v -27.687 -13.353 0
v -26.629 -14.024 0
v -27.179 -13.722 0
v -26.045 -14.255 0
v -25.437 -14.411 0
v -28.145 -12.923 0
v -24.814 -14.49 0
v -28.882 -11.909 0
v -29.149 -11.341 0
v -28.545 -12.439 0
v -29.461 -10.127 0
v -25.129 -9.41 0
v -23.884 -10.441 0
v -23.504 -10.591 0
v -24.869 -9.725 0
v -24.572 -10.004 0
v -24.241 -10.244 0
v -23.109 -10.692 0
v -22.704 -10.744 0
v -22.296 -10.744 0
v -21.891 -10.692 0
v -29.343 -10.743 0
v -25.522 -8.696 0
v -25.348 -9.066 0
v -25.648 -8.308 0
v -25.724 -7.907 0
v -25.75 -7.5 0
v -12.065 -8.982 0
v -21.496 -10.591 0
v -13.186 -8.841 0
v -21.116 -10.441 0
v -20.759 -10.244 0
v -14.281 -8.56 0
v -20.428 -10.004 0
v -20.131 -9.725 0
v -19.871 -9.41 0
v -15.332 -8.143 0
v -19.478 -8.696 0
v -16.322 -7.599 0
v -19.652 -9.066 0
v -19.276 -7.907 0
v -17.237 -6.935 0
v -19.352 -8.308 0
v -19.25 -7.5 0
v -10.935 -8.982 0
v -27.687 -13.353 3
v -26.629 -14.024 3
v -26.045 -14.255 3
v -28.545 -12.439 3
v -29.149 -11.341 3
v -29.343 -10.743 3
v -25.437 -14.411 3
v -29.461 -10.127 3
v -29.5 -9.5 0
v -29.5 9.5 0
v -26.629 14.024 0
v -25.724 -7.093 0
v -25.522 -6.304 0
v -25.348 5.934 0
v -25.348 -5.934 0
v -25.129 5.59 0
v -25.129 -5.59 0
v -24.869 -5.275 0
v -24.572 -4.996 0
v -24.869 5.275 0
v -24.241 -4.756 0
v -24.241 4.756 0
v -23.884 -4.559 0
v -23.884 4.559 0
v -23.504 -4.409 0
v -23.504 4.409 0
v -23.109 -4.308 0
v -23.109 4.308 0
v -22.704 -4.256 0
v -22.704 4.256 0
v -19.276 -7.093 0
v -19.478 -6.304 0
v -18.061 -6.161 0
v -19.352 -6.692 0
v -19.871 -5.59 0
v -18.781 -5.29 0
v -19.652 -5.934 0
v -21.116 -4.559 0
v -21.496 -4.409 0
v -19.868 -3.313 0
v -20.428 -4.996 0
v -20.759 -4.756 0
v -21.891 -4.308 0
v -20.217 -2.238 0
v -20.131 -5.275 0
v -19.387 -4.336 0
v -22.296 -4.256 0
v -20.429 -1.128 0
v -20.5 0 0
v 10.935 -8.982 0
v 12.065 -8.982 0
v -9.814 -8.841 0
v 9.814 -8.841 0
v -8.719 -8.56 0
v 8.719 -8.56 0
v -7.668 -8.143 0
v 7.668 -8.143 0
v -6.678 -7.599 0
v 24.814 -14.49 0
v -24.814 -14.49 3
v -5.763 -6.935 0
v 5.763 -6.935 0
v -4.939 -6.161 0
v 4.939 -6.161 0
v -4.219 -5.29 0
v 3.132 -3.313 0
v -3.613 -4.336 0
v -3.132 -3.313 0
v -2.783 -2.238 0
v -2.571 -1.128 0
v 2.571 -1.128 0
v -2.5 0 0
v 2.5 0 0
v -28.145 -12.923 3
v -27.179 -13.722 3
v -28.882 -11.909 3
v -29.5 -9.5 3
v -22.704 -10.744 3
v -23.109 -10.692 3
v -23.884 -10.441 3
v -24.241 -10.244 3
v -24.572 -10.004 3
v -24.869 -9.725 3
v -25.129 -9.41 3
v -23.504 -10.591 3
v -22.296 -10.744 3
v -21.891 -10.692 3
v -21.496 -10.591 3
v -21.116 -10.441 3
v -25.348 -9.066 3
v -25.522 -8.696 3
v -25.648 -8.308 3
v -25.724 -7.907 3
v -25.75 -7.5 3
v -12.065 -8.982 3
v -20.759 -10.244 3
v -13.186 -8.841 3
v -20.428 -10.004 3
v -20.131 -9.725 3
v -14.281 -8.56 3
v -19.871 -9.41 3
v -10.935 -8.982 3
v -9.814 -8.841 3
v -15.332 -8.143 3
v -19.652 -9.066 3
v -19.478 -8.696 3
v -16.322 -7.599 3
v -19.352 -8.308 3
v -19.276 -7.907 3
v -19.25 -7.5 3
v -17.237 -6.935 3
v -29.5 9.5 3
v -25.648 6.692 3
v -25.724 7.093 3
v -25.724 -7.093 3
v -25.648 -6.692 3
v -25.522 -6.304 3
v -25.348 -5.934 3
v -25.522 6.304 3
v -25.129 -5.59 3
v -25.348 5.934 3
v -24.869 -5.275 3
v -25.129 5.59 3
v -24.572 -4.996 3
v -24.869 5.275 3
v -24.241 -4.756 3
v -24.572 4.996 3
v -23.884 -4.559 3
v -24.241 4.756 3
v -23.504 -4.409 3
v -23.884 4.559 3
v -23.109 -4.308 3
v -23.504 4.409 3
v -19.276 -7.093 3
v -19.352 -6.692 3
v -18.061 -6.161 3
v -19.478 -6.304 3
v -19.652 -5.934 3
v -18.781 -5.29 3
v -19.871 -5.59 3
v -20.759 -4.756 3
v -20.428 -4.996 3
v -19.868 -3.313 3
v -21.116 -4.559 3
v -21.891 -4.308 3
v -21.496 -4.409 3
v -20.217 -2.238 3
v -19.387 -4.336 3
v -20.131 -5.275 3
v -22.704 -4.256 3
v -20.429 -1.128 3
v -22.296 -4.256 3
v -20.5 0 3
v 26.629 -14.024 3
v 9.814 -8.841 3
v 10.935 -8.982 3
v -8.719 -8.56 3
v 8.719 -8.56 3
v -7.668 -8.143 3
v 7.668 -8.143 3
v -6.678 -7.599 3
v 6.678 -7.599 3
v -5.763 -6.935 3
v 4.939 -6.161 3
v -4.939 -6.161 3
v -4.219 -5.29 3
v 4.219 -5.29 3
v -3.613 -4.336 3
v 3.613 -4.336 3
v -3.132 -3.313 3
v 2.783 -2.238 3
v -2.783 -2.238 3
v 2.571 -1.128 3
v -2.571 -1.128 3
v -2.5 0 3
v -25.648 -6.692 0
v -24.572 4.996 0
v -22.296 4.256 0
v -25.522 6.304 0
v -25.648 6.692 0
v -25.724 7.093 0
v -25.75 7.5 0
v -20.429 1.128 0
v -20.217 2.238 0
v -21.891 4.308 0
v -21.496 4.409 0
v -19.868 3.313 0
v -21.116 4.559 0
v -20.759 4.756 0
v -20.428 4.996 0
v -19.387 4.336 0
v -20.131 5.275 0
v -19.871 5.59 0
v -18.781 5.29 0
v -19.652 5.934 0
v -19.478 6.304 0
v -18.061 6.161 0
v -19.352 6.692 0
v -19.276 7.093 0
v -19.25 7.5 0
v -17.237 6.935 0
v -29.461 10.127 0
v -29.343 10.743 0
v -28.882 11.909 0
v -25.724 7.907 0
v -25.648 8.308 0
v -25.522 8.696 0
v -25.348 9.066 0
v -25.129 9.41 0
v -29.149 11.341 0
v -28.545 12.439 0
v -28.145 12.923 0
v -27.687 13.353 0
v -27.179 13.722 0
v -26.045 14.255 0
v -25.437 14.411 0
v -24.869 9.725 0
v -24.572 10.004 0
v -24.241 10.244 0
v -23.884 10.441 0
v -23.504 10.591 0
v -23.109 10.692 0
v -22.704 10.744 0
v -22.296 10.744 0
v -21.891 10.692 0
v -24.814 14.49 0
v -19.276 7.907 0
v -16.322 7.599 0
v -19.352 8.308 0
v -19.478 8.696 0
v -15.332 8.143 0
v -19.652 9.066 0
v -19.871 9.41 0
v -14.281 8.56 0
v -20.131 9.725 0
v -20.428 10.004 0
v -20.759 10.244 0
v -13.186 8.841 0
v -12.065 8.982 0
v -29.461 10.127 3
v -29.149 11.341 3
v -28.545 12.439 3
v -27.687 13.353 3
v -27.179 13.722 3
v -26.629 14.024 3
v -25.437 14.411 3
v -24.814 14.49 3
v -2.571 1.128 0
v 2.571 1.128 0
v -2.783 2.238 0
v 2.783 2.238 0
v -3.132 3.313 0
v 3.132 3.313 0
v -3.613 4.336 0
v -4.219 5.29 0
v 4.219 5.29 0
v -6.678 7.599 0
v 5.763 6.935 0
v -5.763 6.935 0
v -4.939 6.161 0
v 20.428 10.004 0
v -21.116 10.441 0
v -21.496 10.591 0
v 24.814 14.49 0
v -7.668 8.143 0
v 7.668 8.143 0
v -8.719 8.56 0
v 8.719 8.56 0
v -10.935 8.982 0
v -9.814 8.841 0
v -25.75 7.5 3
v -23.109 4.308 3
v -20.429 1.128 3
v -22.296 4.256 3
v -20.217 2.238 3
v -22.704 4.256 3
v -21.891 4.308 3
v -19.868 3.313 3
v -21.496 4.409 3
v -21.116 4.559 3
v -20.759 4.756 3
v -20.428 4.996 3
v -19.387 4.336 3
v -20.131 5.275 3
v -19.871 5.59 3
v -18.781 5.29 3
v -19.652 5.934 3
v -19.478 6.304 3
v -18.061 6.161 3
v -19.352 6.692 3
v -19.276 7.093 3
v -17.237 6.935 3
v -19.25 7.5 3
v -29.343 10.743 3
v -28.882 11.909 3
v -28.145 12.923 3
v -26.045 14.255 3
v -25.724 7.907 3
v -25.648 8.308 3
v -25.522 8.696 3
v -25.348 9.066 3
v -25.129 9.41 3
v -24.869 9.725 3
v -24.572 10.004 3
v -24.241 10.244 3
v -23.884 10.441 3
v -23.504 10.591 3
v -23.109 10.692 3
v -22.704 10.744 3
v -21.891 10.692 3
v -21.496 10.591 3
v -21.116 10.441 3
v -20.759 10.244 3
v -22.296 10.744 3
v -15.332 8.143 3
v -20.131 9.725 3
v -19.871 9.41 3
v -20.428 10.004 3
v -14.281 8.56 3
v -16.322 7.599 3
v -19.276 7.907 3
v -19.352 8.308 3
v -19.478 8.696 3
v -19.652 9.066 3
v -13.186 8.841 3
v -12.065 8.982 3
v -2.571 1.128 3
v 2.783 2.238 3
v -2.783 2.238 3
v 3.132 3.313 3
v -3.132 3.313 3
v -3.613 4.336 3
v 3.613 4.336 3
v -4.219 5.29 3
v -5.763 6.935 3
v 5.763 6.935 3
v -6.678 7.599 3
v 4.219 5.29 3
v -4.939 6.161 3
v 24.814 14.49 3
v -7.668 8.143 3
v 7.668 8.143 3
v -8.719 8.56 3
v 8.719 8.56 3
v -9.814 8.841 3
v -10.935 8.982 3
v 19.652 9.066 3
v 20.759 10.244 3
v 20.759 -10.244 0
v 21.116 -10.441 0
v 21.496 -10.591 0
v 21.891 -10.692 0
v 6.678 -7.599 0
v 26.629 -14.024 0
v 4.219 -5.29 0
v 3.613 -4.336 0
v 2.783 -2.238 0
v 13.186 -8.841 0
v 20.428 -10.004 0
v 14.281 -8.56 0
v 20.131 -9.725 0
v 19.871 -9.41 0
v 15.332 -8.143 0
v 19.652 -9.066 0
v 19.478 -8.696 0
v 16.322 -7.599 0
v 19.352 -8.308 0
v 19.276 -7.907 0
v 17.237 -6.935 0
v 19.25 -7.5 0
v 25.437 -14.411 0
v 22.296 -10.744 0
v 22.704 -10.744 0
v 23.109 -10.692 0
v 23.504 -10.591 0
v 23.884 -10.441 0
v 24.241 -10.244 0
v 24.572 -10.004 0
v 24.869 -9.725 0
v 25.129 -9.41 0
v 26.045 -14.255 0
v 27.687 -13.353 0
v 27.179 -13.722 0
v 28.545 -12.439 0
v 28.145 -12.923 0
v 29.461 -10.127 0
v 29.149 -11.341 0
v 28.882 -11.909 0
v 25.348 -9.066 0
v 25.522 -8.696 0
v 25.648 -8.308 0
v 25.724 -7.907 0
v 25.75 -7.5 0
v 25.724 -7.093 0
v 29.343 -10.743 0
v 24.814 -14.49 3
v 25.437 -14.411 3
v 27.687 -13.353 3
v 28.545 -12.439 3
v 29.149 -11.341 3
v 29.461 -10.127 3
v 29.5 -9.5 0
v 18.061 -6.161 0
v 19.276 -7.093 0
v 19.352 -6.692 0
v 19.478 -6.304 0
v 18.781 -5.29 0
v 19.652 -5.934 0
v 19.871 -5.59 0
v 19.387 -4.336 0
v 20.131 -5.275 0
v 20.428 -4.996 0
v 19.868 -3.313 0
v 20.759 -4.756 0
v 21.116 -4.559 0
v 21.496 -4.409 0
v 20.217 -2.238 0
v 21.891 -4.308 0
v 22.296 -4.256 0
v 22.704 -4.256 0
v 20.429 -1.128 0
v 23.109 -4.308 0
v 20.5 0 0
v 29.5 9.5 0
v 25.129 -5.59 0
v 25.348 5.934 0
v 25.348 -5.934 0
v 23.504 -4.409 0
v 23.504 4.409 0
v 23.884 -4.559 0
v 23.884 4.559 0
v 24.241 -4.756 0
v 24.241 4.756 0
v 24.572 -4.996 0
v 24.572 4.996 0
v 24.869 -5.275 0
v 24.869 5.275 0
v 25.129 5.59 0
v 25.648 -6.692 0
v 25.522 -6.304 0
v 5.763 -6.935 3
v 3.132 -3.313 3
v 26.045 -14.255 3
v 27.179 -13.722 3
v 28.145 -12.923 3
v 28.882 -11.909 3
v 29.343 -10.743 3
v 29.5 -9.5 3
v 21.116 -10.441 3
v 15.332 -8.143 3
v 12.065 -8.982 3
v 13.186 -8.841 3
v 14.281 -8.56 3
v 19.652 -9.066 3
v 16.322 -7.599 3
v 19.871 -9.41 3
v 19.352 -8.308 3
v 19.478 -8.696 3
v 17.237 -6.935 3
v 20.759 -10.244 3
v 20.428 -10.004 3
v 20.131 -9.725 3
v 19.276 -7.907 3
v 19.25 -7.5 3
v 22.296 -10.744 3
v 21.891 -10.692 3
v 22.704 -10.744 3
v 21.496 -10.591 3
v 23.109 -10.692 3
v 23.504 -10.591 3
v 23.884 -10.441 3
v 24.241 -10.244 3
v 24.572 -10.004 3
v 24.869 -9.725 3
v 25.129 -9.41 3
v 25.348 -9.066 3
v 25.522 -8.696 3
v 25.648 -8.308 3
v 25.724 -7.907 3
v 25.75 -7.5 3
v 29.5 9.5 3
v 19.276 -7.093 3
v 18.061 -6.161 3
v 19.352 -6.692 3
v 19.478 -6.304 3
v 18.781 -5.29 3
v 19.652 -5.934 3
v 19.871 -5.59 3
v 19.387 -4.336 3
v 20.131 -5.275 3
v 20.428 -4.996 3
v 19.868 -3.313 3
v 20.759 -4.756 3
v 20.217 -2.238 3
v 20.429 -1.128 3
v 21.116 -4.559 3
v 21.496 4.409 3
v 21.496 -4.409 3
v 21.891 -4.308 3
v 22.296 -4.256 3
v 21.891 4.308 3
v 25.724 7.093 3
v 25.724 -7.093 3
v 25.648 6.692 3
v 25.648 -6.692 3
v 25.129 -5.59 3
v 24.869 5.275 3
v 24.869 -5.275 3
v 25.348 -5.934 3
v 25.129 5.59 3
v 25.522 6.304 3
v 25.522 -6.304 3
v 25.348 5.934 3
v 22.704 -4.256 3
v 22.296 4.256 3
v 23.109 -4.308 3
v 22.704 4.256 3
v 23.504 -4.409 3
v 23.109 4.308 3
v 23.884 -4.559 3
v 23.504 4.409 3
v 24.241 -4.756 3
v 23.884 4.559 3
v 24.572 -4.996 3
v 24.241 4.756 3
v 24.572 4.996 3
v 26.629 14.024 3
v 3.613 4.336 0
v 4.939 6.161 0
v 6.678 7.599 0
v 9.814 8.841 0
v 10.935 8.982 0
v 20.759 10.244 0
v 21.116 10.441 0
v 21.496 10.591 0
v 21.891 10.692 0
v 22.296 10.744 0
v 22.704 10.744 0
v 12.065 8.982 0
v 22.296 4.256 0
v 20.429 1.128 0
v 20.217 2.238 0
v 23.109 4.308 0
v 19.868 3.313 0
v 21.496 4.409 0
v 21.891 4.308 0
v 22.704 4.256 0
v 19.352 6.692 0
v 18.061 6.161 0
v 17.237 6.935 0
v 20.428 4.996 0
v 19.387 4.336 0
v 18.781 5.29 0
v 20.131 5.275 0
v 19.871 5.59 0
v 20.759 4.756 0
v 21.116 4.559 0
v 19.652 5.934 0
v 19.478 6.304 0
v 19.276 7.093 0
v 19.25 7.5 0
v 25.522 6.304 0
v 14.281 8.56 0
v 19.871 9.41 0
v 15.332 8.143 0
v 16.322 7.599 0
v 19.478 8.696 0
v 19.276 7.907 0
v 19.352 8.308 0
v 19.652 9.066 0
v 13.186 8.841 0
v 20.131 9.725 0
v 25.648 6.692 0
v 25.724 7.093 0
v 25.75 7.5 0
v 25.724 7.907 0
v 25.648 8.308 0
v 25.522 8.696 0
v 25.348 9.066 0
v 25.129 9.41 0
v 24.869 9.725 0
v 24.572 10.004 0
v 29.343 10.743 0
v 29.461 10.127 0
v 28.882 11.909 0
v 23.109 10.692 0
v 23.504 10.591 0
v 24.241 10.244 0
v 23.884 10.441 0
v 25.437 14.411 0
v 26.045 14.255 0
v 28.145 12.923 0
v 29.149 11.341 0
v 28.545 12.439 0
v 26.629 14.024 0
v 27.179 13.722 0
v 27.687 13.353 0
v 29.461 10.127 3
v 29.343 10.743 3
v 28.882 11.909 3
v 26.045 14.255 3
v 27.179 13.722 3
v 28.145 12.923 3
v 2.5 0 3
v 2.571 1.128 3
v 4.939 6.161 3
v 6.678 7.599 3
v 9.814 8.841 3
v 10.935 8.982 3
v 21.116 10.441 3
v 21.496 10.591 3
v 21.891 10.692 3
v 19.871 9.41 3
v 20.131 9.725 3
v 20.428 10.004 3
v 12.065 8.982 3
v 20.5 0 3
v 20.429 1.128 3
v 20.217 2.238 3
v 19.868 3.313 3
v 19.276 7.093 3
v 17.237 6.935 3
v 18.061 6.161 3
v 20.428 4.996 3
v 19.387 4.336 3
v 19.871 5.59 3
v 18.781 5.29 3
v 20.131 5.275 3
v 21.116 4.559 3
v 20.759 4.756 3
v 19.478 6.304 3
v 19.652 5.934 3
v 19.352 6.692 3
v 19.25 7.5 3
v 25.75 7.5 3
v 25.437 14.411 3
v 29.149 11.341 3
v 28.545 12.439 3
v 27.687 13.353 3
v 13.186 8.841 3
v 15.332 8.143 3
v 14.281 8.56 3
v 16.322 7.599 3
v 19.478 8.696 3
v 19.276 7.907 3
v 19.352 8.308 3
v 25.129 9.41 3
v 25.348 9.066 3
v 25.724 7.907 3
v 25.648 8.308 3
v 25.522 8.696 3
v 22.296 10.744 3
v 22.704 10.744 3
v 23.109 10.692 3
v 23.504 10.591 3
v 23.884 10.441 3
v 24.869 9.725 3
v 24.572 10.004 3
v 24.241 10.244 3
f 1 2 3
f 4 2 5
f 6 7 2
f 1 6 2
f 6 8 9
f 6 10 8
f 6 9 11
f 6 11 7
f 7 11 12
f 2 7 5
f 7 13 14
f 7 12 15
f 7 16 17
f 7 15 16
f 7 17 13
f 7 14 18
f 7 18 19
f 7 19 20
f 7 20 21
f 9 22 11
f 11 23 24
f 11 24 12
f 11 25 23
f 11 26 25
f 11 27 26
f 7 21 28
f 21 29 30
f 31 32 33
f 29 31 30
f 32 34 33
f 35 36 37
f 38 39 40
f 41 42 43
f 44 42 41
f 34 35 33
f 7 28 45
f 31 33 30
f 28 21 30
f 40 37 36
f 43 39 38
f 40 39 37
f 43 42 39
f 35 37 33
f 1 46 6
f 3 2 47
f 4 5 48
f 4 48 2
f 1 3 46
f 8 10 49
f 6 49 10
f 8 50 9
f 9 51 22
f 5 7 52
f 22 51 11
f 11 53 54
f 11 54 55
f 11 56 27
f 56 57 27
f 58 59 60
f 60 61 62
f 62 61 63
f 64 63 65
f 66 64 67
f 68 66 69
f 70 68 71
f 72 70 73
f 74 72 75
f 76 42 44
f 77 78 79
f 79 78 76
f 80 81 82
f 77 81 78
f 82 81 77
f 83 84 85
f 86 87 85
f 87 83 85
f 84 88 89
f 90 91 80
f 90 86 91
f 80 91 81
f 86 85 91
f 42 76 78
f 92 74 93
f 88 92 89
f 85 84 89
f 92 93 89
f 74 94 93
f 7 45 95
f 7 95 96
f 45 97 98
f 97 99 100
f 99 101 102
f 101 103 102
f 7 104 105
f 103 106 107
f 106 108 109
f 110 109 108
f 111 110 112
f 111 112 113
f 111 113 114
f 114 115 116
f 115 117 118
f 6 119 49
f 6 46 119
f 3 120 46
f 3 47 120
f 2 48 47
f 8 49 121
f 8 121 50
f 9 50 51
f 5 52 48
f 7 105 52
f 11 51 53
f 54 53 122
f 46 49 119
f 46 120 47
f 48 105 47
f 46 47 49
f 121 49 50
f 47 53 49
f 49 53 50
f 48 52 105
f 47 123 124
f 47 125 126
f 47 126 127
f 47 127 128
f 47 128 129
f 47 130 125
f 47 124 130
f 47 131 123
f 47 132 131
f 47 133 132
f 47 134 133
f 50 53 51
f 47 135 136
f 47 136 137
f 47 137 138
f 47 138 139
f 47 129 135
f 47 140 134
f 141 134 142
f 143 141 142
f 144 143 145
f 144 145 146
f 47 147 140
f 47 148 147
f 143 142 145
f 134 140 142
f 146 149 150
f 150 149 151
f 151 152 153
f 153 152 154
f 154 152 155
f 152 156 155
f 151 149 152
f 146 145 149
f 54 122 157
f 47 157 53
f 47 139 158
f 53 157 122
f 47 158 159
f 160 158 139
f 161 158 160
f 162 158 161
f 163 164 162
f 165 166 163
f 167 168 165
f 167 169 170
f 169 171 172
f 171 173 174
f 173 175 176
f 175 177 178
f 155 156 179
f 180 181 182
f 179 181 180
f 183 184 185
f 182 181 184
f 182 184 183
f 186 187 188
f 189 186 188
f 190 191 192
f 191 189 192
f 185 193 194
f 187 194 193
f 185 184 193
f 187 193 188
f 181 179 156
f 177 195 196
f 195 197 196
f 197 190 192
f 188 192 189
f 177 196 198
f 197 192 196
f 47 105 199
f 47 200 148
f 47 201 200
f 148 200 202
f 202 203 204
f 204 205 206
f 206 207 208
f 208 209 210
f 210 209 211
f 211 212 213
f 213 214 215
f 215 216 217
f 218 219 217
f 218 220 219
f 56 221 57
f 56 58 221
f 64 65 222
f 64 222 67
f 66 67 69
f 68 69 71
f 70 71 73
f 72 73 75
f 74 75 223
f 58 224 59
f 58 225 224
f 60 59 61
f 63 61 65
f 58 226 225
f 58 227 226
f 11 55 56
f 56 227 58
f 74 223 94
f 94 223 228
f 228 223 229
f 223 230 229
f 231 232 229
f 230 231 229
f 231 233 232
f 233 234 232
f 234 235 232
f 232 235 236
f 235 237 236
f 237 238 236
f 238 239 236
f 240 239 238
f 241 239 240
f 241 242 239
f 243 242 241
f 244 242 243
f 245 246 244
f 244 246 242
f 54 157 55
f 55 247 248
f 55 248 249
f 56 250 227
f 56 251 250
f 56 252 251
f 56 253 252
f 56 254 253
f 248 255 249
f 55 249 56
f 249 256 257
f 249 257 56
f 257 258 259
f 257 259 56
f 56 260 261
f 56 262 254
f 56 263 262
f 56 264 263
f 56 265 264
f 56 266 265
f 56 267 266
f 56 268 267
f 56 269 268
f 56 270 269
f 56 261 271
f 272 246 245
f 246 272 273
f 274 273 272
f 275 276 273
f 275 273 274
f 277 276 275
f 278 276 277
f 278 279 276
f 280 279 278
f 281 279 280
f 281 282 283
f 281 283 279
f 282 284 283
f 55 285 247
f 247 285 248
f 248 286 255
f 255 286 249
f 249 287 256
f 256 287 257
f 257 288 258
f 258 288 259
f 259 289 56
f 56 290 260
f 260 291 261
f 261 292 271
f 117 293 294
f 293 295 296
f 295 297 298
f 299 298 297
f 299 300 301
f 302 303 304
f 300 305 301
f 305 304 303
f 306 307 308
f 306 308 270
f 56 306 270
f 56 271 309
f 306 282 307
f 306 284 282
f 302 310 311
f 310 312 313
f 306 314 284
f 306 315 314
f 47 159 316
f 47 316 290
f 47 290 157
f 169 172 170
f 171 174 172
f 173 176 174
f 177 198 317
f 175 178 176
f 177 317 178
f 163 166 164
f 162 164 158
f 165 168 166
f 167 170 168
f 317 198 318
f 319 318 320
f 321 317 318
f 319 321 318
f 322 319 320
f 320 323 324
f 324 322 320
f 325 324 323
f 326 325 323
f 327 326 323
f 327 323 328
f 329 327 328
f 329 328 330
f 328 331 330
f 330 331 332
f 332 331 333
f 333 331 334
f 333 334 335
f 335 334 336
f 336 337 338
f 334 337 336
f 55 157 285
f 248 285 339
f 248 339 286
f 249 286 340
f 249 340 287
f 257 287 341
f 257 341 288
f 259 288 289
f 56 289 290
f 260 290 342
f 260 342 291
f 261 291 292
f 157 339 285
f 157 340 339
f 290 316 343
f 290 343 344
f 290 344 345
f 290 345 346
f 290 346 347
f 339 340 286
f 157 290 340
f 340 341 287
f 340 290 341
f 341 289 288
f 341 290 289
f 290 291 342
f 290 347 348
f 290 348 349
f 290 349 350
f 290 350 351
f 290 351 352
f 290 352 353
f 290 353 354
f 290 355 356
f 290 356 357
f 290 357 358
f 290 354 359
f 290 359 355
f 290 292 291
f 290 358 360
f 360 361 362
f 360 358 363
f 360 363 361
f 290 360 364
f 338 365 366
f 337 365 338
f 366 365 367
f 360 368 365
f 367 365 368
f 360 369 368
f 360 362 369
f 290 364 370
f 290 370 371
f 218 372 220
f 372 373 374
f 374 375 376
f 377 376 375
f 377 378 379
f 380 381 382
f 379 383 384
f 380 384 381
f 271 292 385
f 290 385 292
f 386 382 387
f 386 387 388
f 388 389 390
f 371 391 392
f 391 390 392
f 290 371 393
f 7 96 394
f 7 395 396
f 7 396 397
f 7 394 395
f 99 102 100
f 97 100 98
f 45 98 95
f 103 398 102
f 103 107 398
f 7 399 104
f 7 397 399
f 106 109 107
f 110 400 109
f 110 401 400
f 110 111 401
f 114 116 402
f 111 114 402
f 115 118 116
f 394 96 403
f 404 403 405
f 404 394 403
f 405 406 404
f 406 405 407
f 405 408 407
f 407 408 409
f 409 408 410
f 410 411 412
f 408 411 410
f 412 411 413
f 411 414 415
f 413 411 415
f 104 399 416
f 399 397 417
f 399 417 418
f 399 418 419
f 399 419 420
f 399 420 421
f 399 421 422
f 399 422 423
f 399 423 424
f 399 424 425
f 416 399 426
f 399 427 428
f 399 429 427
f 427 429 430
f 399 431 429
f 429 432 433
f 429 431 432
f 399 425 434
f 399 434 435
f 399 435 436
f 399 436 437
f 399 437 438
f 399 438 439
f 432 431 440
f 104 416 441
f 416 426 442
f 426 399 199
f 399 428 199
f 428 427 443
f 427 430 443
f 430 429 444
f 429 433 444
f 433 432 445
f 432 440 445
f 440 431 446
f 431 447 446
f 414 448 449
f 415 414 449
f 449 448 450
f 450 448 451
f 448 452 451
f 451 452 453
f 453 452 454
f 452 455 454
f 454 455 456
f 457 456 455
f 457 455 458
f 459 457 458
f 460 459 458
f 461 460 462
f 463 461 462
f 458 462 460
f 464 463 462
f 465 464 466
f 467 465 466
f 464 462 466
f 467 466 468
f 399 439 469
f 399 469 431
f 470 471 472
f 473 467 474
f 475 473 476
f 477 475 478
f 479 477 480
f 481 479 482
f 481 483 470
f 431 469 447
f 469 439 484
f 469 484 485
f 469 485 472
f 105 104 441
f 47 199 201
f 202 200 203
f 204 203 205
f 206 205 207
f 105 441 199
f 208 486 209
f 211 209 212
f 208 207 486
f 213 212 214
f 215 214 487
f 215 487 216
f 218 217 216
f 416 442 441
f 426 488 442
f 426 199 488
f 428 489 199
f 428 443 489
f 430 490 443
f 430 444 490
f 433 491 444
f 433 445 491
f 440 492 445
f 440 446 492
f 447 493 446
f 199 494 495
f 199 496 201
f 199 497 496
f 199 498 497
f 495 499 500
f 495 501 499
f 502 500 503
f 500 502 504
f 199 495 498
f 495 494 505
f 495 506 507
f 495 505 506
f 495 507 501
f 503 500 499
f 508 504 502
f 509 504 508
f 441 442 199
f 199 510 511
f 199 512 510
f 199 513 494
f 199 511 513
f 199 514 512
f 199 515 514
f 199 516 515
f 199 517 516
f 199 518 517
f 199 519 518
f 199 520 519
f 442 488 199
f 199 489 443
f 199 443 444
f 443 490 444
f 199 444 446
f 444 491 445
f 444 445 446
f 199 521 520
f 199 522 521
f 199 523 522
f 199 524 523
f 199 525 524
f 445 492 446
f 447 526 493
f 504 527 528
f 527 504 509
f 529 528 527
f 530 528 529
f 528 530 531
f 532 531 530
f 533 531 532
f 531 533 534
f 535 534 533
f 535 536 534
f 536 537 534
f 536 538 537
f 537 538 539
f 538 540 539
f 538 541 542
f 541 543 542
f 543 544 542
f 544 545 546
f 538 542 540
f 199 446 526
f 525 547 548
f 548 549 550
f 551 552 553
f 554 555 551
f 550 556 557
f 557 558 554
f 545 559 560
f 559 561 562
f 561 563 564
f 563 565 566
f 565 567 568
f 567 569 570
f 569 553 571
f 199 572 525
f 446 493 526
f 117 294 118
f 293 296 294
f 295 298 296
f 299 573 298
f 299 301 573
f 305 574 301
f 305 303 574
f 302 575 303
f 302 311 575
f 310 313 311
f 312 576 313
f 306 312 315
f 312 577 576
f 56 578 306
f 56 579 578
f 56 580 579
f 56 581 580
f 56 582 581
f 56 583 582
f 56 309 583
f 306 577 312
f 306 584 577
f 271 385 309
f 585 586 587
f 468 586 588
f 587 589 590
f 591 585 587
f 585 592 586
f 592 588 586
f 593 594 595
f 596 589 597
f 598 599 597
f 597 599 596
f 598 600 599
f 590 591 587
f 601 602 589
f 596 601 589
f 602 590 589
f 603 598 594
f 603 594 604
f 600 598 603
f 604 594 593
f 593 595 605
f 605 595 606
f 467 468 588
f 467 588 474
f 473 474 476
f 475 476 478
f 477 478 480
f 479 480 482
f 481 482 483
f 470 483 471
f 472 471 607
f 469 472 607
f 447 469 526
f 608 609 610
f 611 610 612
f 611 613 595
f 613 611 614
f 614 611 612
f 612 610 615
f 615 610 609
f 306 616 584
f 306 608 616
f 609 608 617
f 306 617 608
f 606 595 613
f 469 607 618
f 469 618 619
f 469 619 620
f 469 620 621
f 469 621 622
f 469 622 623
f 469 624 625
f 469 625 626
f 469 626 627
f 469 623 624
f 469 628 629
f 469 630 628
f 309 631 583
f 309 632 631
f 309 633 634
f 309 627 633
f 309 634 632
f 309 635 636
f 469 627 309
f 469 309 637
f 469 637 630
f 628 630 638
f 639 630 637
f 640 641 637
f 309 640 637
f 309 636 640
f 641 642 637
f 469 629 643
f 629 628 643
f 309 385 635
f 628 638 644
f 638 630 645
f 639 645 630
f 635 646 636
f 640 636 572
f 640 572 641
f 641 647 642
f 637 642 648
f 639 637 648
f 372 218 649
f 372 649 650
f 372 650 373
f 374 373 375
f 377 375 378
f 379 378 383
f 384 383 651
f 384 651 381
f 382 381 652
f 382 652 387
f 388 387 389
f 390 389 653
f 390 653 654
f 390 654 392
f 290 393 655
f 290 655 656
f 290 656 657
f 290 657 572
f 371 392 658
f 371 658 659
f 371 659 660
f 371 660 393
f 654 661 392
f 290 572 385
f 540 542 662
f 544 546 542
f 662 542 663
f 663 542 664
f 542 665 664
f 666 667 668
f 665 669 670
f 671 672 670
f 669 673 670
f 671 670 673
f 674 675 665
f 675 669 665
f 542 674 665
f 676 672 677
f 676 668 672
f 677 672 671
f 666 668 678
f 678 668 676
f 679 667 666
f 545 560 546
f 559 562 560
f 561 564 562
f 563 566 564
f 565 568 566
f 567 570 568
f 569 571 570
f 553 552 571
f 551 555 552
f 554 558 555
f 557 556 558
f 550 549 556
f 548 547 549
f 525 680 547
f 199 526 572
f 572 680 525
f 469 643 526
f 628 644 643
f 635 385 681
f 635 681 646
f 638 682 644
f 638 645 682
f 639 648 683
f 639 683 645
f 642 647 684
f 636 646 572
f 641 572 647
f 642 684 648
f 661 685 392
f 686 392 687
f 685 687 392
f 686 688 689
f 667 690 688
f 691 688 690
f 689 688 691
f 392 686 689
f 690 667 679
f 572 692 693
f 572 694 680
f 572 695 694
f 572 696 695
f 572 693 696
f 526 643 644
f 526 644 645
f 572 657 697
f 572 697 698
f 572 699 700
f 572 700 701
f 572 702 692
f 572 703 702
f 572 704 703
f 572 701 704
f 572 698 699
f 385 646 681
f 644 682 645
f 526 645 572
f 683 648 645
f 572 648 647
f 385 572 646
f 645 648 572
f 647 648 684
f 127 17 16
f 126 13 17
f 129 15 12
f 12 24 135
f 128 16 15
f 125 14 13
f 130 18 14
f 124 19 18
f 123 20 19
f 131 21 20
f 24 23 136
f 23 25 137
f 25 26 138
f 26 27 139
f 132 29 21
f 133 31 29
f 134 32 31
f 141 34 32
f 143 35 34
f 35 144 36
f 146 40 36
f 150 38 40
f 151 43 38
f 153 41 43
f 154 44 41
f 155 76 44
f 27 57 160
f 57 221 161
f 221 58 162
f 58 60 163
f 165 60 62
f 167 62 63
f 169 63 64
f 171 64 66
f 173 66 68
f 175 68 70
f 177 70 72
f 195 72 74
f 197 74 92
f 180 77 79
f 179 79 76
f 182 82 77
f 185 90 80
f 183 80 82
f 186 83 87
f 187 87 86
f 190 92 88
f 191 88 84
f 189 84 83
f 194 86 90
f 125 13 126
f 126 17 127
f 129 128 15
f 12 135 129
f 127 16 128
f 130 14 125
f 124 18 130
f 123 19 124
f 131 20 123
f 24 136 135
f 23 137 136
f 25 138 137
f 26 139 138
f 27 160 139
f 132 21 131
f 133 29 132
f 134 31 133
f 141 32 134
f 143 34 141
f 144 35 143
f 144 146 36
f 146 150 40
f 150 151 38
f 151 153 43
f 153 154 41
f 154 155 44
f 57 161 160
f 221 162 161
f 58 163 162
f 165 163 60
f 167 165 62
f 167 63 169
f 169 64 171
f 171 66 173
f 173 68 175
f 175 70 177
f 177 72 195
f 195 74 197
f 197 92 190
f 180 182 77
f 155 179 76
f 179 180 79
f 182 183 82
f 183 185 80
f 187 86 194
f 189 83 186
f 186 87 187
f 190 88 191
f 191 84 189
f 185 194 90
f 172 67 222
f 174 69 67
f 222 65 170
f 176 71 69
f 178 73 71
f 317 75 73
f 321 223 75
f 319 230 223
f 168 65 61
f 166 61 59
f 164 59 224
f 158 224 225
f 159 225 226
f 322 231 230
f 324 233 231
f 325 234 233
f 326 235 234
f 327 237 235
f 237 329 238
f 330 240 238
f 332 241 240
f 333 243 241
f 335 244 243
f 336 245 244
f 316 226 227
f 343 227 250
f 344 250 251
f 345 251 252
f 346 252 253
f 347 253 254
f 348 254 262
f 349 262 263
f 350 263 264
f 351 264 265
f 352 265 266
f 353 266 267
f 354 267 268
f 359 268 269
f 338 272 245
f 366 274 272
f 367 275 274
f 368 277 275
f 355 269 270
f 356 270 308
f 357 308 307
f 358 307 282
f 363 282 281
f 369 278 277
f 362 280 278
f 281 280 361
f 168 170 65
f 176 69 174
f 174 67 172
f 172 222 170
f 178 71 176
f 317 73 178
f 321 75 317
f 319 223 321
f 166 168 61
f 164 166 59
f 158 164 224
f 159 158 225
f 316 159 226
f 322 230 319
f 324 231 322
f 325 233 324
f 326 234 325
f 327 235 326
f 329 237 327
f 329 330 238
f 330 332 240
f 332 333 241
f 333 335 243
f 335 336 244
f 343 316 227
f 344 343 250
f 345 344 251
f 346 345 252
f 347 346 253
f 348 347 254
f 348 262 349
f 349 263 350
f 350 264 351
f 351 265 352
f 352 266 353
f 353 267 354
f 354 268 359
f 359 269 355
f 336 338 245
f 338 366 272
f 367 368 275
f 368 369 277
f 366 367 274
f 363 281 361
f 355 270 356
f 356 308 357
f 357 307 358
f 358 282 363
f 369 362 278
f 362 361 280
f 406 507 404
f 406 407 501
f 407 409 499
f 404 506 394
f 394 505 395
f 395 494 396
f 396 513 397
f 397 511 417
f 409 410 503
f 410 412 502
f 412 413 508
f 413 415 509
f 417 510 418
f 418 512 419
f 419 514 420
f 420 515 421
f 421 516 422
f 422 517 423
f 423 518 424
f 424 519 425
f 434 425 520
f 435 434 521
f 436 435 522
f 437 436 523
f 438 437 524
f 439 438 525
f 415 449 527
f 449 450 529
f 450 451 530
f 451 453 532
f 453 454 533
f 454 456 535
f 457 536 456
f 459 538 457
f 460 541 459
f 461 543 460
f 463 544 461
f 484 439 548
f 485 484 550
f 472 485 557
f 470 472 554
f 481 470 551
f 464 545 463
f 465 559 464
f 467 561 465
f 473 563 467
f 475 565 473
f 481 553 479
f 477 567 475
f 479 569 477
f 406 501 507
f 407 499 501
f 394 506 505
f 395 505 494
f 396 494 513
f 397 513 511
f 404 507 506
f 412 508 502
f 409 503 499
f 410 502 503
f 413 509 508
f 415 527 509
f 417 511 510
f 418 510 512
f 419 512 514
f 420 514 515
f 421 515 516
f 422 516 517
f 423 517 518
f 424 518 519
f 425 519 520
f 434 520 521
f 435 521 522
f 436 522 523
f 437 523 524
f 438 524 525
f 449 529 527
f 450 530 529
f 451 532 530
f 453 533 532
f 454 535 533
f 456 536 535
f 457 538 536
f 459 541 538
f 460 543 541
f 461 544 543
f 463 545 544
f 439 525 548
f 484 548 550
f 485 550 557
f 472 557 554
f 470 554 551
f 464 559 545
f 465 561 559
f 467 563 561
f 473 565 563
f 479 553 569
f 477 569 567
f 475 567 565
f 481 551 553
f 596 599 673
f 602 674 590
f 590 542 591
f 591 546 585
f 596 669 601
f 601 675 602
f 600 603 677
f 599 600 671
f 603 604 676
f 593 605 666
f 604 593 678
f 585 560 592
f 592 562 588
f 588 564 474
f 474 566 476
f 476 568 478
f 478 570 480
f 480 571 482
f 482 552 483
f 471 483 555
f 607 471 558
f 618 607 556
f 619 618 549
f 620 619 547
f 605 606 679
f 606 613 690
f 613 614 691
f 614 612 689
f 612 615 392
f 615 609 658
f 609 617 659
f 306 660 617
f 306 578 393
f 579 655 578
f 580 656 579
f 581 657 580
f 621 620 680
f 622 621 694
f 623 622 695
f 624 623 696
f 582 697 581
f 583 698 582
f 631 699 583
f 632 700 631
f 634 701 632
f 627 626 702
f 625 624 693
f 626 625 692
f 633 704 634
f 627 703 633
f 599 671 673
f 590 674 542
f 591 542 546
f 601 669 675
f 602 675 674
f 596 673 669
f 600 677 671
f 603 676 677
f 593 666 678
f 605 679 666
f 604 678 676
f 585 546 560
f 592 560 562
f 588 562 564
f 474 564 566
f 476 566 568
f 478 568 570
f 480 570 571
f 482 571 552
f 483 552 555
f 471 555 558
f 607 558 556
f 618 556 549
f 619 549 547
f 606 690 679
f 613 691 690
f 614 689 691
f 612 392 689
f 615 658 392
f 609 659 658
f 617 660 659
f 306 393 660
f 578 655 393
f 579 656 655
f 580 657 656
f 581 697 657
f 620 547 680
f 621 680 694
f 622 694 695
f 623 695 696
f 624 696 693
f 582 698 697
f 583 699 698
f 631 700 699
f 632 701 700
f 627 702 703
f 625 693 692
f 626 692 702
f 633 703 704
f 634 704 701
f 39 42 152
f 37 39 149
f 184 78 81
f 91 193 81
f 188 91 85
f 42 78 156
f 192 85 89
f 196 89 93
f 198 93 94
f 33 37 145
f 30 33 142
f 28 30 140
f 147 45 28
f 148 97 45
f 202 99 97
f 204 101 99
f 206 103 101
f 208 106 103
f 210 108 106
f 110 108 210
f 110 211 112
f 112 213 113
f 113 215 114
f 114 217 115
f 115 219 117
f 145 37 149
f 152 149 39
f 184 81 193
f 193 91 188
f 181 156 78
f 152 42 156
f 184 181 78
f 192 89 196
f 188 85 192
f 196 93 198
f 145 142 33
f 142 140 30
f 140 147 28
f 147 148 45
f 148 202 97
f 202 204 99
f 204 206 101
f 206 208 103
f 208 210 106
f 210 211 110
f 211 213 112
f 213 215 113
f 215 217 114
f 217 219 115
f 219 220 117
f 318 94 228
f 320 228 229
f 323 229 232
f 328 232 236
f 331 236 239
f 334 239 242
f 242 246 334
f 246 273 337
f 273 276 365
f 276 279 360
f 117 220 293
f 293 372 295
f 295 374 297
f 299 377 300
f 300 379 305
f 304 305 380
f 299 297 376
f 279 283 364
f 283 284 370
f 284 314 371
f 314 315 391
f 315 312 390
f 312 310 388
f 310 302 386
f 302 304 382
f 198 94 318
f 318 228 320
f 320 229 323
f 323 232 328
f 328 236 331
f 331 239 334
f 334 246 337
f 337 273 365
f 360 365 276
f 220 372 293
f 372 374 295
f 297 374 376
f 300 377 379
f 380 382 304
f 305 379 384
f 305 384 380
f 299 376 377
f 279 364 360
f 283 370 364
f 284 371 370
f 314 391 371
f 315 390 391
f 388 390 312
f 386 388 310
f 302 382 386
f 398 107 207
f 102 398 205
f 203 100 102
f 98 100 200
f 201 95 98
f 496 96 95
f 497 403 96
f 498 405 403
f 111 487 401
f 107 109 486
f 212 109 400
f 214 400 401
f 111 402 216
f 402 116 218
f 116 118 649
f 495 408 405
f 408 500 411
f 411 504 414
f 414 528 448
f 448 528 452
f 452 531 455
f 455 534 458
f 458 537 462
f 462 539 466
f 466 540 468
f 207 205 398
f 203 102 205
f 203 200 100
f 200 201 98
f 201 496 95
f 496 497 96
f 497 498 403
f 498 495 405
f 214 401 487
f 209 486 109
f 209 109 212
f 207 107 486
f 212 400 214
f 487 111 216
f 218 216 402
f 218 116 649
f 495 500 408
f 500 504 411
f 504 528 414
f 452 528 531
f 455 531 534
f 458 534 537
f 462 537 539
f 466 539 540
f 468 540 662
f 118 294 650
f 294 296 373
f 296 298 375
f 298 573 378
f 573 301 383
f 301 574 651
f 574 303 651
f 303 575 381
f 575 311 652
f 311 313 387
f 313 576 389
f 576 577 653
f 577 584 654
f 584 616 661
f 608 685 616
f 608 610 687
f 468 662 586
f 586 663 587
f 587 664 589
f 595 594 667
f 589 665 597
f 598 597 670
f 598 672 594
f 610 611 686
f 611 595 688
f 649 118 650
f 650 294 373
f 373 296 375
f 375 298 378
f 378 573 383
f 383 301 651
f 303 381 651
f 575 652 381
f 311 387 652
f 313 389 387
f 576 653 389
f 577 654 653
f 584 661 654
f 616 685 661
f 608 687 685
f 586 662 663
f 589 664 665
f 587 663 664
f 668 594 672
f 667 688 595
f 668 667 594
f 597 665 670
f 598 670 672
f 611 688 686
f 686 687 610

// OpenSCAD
$fn = 50;

difference() {
	union() {
		hull() {
			translate(v = [-24.5, 9.5, 0]) {
				cylinder(h = 3, r = 5);
			}
			translate(v = [24.5, 9.5, 0]) {
				cylinder(h = 3, r = 5);
			}
			translate(v = [-24.5, -9.5, 0]) {
				cylinder(h = 3, r = 5);
			}
			translate(v = [24.5, -9.5, 0]) {
				cylinder(h = 3, r = 5);
			}
		}
	}
	union() {
		translate(v = [-22.5, -7.5, -100.0]) {
			cylinder(h = 200, r = 3.25);
		}
		translate(v = [-22.5, 7.5, -100.0]) {
			cylinder(h = 200, r = 3.25);
		}
		translate(v = [22.5, -7.5, -100.0]) {
			cylinder(h = 200, r = 3.25);
		}
		translate(v = [22.5, 7.5, -100.0]) {
			cylinder(h = 200, r = 3.25);
		}
		translate(v = [-22.5, -7.5, -100.0]) {
			cylinder(h = 200, r = 1.8);
		}
		translate(v = [-22.5, 7.5, -100.0]) {
			cylinder(h = 200, r = 1.8);
		}
		translate(v = [22.5, -7.5, -100.0]) {
			cylinder(h = 200, r = 1.8);
		}
		translate(v = [22.5, 7.5, -100.0]) {
			cylinder(h = 200, r = 1.8);
		}
		translate(v = [-11.5, 0, 0.0]) {
			cylinder(h = 3, r = 9.0);
		}
		translate(v = [11.5, 0, 0.0]) {
			cylinder(h = 3, r = 9.0);
		}
	}
}
